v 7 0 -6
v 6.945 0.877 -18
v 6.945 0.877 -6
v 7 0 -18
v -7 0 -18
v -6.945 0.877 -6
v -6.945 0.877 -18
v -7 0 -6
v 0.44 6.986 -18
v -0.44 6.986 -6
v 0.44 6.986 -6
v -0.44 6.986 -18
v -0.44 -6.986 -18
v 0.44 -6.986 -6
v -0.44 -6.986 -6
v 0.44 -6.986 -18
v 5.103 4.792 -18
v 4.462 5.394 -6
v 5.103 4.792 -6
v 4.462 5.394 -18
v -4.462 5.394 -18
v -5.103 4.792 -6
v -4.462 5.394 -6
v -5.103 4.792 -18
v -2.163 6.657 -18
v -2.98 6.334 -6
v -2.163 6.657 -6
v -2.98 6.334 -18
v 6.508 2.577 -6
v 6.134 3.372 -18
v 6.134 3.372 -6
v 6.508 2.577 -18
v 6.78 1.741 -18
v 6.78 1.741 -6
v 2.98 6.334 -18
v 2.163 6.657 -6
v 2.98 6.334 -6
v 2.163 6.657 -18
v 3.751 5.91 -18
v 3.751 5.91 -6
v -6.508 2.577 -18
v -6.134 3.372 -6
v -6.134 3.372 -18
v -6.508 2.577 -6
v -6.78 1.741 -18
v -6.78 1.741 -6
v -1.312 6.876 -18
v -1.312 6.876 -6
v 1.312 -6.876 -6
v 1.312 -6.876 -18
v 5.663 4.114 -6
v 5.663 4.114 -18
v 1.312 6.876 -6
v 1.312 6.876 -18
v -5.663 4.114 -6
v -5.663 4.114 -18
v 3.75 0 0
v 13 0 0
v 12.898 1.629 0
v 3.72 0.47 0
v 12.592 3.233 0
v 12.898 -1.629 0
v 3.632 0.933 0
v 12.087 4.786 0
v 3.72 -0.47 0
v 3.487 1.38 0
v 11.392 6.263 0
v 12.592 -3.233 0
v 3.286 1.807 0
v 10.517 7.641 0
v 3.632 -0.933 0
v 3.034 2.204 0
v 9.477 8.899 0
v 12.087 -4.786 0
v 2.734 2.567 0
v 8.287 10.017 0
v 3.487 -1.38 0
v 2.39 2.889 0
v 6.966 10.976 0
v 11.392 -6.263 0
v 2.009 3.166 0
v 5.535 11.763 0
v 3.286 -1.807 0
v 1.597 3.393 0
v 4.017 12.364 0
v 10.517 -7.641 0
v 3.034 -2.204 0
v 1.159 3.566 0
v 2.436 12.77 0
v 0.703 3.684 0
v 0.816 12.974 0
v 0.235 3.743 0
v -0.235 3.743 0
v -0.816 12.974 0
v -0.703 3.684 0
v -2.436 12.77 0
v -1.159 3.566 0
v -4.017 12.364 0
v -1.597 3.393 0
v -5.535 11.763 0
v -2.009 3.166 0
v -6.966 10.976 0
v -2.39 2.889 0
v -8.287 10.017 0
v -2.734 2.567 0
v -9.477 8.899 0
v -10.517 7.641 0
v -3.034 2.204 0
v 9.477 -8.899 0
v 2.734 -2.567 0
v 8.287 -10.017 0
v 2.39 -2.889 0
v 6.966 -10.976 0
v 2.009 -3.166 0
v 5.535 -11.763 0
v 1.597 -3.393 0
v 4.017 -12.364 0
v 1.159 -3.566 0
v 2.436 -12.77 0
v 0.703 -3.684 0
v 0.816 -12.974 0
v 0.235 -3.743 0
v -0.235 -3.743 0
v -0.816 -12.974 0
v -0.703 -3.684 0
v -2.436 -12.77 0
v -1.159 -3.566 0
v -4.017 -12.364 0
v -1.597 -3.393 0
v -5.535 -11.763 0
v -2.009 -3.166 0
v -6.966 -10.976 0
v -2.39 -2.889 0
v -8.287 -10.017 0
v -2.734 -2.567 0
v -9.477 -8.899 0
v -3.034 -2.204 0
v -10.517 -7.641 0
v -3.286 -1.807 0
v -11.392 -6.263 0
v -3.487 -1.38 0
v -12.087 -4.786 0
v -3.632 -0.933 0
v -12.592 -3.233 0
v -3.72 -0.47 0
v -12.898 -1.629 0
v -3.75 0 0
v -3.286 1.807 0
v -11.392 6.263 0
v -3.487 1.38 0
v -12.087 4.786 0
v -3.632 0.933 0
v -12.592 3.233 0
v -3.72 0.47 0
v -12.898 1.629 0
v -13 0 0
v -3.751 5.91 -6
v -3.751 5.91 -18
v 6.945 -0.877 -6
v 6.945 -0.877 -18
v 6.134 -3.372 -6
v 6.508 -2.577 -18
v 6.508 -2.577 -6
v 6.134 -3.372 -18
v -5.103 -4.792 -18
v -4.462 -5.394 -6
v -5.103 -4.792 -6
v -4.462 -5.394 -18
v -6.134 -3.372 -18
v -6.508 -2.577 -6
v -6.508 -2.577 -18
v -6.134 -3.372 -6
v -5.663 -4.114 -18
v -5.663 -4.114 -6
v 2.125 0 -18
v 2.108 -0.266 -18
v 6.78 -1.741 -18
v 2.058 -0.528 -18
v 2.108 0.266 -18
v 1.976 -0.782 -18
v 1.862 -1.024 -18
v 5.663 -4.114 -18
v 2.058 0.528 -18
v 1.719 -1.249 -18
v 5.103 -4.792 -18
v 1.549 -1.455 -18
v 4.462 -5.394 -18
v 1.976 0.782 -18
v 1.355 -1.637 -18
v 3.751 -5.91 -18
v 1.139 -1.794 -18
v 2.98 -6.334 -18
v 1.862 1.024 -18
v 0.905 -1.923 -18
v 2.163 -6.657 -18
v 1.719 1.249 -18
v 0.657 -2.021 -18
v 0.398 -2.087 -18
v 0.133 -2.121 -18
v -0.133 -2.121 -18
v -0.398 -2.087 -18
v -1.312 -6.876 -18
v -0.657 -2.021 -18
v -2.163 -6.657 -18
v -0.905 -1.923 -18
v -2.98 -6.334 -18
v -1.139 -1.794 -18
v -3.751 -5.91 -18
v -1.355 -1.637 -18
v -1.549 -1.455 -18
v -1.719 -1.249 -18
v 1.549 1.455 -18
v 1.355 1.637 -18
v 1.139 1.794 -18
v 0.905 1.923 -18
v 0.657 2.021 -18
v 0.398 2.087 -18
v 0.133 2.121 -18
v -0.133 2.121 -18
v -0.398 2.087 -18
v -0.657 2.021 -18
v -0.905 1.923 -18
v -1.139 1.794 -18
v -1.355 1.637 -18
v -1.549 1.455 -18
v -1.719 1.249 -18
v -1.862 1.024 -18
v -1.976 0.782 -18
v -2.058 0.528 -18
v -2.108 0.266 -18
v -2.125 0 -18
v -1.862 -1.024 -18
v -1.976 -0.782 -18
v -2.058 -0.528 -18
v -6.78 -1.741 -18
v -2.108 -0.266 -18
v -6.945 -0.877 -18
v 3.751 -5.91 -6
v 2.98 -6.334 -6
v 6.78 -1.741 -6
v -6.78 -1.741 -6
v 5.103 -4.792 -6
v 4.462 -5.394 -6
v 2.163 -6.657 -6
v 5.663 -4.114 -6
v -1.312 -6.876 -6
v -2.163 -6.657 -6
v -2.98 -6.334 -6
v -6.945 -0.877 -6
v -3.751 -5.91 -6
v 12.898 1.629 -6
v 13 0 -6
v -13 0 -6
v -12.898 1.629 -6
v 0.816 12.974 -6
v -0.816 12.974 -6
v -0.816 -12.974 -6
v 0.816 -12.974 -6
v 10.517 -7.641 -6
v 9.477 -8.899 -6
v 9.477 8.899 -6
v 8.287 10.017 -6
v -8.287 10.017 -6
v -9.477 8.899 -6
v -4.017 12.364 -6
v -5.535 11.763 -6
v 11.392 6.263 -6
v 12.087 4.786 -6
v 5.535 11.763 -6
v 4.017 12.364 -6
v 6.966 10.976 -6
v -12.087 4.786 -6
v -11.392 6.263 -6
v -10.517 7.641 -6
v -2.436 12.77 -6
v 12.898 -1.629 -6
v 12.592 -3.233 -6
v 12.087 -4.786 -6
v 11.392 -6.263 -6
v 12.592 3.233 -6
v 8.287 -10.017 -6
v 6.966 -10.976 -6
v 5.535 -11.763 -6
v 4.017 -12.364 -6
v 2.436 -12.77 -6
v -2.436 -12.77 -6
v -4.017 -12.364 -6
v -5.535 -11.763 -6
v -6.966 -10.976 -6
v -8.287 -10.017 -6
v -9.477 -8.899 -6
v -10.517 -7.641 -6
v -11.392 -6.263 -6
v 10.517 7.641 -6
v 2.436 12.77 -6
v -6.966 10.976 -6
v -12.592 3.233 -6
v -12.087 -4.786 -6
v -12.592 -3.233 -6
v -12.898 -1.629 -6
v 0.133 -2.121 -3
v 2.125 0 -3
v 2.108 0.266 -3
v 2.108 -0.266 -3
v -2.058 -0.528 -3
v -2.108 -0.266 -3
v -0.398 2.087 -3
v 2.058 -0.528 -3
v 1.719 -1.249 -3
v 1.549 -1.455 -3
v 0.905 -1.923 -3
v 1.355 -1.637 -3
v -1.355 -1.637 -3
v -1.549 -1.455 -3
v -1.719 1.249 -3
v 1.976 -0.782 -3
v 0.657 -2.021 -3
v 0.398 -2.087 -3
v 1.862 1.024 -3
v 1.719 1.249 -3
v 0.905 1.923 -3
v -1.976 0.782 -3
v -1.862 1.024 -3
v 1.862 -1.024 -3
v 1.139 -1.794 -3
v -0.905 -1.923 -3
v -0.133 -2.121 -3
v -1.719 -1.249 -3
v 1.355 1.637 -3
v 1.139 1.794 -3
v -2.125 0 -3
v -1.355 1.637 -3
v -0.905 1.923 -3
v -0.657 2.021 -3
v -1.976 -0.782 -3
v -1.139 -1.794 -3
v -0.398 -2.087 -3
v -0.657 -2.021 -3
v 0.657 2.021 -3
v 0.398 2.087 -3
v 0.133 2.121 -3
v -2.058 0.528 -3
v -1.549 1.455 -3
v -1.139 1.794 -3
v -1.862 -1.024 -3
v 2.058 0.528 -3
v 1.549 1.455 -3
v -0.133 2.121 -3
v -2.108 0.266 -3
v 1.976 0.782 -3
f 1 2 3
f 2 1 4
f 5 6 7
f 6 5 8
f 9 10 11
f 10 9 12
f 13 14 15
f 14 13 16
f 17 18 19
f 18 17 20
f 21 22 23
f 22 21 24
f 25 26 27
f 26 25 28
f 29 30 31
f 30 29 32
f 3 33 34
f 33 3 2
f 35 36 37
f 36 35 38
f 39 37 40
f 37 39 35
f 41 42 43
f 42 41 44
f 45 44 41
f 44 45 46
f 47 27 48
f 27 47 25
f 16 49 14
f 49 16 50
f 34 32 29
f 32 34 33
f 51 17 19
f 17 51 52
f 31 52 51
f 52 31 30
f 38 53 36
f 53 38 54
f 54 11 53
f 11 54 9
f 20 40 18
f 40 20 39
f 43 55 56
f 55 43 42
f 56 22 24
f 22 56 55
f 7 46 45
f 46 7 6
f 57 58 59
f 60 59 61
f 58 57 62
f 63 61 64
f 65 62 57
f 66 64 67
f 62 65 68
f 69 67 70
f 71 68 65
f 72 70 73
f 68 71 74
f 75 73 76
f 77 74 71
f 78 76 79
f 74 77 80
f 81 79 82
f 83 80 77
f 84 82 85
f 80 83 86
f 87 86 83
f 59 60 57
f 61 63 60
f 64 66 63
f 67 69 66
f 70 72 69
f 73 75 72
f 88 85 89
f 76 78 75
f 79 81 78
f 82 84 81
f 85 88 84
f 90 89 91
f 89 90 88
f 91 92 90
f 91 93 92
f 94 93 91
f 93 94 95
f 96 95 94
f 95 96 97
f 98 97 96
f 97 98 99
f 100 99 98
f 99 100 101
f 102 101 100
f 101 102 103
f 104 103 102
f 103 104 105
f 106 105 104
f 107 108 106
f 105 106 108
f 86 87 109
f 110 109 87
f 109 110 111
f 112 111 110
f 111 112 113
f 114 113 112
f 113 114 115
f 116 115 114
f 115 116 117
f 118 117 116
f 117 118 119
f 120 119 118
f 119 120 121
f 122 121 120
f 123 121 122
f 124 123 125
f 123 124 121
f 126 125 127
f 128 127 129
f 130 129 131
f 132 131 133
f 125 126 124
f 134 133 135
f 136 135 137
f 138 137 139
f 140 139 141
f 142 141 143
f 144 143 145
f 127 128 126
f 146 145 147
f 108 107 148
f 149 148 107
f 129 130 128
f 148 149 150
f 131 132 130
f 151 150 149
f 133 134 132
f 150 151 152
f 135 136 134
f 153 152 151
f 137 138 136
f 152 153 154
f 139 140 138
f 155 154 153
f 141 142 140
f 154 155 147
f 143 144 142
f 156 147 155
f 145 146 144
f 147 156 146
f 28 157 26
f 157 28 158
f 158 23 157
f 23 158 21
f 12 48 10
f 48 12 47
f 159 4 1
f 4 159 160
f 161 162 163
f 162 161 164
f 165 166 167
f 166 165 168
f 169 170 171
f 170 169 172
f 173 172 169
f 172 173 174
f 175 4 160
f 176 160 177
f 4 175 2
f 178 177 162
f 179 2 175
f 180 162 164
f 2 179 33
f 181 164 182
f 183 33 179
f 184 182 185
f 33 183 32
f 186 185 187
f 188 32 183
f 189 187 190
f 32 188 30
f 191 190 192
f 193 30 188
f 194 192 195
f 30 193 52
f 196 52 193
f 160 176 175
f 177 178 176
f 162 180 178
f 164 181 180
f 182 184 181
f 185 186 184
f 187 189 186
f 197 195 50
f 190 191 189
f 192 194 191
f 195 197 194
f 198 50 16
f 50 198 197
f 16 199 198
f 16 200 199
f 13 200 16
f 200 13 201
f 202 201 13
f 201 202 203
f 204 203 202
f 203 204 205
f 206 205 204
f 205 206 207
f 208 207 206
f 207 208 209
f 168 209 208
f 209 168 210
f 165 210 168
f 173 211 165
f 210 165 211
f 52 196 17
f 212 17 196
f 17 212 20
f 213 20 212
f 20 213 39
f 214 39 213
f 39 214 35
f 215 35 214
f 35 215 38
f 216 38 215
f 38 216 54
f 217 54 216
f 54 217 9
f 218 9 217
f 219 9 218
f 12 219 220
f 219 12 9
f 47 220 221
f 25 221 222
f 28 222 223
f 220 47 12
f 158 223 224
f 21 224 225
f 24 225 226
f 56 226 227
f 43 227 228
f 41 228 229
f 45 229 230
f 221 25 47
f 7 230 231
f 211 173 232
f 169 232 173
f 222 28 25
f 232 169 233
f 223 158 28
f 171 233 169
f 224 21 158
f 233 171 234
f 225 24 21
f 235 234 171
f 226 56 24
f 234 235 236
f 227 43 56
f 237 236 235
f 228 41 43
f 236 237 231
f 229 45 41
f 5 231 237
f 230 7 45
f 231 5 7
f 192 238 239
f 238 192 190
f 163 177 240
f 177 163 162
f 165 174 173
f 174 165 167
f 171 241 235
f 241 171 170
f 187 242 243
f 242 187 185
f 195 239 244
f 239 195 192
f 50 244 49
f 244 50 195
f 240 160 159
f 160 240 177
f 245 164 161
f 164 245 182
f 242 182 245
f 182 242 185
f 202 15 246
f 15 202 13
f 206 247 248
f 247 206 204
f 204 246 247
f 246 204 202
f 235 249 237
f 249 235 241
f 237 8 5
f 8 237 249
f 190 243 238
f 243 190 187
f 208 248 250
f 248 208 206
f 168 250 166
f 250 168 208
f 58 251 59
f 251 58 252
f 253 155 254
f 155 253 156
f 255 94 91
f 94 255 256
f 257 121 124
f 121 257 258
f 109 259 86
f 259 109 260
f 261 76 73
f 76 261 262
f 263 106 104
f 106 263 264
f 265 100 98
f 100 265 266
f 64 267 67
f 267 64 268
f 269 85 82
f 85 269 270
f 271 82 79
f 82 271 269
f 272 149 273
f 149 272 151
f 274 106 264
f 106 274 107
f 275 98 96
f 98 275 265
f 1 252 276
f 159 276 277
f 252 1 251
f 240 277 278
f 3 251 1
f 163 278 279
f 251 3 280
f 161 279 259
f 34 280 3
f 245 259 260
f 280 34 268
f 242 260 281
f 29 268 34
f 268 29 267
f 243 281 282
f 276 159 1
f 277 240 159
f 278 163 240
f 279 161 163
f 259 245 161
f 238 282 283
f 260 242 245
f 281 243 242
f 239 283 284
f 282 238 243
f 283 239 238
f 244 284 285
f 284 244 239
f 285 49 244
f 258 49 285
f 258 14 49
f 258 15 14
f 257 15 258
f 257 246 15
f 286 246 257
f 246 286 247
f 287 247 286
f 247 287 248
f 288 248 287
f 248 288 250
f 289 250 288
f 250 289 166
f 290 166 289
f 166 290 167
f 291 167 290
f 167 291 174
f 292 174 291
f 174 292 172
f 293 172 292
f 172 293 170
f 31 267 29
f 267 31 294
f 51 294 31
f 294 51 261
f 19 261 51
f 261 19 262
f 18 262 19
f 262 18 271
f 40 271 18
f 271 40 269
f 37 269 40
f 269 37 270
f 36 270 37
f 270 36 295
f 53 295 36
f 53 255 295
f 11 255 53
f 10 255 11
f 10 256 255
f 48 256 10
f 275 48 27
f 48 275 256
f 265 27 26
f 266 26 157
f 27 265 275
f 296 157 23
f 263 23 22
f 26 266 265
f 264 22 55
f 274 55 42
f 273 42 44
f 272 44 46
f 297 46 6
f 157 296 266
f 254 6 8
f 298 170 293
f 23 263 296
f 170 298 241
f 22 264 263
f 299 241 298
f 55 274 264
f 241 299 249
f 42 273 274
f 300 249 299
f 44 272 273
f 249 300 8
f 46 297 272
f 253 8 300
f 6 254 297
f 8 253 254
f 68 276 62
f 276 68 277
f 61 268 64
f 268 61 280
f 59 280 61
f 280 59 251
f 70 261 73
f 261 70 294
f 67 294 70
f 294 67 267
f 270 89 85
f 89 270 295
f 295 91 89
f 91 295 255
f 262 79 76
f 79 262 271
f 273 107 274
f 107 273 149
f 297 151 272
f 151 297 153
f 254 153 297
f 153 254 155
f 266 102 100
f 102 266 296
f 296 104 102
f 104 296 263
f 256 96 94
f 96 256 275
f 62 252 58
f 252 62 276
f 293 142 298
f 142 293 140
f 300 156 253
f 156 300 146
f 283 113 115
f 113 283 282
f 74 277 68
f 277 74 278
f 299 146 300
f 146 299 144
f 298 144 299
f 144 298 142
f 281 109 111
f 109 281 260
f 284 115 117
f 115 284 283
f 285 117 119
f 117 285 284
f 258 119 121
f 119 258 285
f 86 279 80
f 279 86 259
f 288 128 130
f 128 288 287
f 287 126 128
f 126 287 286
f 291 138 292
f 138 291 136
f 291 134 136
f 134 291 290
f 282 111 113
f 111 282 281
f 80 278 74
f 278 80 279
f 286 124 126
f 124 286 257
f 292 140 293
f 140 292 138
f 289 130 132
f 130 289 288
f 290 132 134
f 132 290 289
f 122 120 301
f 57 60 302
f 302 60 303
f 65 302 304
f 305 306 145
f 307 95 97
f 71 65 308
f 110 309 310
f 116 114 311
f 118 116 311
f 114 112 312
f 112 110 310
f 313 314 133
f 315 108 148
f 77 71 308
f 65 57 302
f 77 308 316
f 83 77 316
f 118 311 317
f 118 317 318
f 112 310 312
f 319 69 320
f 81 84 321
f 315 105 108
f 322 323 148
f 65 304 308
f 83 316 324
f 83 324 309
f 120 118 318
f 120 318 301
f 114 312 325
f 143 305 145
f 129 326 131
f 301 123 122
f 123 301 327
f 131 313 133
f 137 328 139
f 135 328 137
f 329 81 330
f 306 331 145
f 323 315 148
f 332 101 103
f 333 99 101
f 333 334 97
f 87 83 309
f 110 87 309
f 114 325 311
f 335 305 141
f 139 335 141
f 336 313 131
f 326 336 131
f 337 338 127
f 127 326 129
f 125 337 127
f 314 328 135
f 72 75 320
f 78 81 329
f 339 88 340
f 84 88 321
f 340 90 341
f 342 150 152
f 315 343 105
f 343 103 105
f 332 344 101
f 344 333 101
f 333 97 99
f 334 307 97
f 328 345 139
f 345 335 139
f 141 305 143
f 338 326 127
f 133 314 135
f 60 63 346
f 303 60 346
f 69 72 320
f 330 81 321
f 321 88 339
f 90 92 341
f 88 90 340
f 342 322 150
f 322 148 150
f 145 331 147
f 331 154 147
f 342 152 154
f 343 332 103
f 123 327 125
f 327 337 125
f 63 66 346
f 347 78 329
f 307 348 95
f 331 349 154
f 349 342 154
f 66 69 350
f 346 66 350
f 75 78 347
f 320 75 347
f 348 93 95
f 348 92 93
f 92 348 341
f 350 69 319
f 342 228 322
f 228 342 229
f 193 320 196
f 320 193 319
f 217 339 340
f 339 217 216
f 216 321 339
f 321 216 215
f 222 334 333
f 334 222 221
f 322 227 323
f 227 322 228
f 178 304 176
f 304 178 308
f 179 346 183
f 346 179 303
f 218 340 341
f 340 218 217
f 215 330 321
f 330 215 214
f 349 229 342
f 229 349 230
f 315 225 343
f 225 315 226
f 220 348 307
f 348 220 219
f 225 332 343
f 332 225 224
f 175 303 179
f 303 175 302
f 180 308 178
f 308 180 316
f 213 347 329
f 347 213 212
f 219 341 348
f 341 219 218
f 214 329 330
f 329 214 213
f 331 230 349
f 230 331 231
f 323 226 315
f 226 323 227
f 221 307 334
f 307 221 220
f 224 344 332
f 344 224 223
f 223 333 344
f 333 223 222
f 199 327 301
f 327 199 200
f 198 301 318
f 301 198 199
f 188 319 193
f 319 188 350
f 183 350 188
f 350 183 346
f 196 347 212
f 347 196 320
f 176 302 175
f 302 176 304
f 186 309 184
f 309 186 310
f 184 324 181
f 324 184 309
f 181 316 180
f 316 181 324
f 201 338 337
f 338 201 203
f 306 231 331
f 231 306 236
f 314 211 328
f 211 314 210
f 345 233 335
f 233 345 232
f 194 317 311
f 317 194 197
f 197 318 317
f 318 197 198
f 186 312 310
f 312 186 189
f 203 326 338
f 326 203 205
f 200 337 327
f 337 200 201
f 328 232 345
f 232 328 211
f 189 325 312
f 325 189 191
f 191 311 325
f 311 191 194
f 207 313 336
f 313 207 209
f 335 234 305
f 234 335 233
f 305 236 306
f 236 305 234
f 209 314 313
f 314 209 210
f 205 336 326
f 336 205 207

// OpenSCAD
$fn = 50;


difference() {
	union() {
		translate(v = [0, 0, -18.0000000000]) {
			cylinder(h = 18, r = 7.0000000000);
		}
		translate(v = [0, 0, -6.0000000000]) {
			cylinder(h = 6, r = 13.0000000000);
		}
	}
	union() {
		translate(v = [0, 0, 0]) {
			rotate(a = [0, 0, 0]) {
				difference() {
					union() {
						#translate(v = [0, 0, -18.0000000000]) {
							cylinder(h = 18, r = 2.0000000000);
						}
						#translate(v = [0, 0, -3]) {
							cylinder(h = 3, r = 7.0000000000, r1 = 2.1250000000, r2 = 3.7500000000);
						}
						#translate(v = [0, 0, -18.0000000000]) {
							cylinder(h = 18, r = 2.1250000000);
						}
						#translate(v = [0, 0, -18.0000000000]) {
							cylinder(h = 18, r = 2.0000000000);
						}
					}
					union();
				}
			}
		}
	}
}
